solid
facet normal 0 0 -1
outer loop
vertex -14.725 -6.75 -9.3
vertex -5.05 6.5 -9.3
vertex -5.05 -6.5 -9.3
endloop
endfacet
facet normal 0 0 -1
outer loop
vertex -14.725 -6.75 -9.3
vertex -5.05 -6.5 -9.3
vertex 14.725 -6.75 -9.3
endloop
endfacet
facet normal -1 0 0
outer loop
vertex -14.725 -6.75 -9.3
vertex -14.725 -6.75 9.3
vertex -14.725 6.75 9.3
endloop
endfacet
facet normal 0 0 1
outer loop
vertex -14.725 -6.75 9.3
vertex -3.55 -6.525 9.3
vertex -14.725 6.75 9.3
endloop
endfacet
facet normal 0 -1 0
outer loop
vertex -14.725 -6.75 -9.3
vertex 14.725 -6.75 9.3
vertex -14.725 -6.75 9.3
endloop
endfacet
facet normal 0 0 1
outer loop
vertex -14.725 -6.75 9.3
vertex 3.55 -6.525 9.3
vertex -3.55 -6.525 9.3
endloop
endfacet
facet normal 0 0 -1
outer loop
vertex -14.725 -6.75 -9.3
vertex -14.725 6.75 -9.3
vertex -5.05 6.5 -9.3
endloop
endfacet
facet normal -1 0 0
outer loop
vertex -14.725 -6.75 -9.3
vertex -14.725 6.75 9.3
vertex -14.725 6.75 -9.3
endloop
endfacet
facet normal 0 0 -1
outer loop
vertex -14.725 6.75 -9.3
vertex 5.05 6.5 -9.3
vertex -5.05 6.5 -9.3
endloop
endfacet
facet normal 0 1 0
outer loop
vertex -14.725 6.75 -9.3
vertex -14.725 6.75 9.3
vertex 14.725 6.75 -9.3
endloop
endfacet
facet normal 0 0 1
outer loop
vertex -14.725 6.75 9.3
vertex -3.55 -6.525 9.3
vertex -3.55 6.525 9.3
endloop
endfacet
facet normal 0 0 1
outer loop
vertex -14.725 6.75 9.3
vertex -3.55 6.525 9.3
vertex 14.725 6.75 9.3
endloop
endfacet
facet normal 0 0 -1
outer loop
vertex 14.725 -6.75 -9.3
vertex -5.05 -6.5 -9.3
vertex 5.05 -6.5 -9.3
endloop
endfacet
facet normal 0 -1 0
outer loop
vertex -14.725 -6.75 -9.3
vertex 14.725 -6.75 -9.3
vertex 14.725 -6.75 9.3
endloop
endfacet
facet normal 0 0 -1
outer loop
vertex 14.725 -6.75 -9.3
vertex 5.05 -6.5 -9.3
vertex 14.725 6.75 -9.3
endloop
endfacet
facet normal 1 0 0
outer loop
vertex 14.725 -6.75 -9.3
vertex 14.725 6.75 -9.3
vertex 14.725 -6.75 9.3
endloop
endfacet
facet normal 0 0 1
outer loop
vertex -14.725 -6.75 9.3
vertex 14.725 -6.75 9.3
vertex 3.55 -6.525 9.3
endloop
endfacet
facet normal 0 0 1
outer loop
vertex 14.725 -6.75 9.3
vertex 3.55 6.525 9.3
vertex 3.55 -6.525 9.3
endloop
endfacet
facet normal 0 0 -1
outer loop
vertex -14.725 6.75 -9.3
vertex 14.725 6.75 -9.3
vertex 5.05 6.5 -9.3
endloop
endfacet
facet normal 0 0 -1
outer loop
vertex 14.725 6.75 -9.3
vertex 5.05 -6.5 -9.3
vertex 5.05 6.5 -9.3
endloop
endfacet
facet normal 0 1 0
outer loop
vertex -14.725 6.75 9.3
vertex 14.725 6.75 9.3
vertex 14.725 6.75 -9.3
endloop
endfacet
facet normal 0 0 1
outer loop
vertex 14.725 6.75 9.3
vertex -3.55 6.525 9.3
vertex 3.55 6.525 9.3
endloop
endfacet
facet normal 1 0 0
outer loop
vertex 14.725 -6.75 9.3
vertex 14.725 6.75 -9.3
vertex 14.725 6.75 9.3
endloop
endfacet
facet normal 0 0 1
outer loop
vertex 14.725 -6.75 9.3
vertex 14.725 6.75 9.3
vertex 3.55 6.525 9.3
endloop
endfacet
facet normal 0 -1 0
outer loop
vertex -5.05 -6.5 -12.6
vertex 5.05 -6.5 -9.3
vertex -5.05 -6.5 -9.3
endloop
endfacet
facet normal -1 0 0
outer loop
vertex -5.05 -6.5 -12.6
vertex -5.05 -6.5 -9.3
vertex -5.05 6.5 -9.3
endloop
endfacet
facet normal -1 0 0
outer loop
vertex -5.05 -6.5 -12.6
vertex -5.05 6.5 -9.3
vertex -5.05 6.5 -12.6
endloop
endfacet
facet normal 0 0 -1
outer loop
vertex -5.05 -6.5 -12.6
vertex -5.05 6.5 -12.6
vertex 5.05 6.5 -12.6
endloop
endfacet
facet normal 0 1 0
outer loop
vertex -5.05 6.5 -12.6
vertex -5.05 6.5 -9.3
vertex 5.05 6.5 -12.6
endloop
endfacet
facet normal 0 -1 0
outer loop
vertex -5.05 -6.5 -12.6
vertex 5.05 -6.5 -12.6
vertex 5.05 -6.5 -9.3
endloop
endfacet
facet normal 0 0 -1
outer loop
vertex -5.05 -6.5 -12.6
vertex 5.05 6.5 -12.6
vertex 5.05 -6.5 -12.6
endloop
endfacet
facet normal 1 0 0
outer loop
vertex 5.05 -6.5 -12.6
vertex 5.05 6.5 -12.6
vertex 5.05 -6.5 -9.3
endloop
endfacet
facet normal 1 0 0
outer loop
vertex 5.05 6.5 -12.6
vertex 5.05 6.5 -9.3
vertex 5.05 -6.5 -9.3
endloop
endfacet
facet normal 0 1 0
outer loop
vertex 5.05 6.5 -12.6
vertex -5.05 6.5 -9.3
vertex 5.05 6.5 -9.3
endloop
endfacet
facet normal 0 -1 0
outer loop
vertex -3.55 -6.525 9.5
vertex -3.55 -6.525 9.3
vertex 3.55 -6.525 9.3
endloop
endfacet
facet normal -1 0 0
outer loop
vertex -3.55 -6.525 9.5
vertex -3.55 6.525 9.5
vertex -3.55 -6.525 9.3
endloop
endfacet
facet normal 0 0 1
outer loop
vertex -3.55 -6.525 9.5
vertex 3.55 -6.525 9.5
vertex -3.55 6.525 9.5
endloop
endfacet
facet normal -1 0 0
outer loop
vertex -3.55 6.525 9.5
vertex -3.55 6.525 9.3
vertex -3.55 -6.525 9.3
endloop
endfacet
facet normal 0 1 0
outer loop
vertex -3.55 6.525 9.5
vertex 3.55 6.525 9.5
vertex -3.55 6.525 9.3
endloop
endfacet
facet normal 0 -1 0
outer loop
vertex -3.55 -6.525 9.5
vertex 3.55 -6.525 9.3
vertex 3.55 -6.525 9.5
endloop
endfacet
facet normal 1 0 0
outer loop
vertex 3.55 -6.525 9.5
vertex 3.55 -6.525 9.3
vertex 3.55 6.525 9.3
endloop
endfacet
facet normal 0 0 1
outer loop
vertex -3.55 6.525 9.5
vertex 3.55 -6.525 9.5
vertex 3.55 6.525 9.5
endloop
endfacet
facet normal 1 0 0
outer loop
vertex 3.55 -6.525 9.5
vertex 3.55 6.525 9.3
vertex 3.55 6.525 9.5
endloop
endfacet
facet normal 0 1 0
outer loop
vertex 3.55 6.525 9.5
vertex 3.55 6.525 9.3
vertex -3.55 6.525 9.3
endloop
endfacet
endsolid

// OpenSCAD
// Sharp GP2Y0D413K0F Distance Sensor
// Model based on the provided datasheet.
// Units: mm
// Coordinate System:
// - Origin (0,0,0) is at the center of the body.
// - Mounting surface (PWB side) faces the -Z direction.

$fn = 50;

// --- Parameters ---
// Body dimensions
body_w = 29.45;
body_h = 13.5;
body_d = 18.6;

// Connector / PWB dimensions
pwb_w = 10.1;
connector_d = 3.3;
connector_h = 13.0; // Slightly shorter than the body height

// Lens Case front face
lens_w = 7.1;
lens_h = 13.05;

// --- Modules ---

module body() {
    // Main body block
    // The depth is 18.6. Since origin is center, Z goes from -9.3 to 9.3.
    cube([body_w, body_h, body_d], center = true);
}

module connector() {
    // The connector is on the PWB side (-Z direction).
    // PWB face is at Z = -9.3.
    // Connector extends further in -Z by 3.3mm.
    // Center of connector is at Z = -9.3 - (3.3 / 2) = -10.95.
    translate([0, 0, -9.3 - (connector_d / 2)])
        cube([pwb_w, connector_h, connector_d], center = true);
}

module lens_case_detail() {
    // The front face of the "Lens case" is narrower (7.1mm).
    // It occupies the front-most part of the body.
    // We model this as a slight step/profile on the front.
    // This is a simplified representation of the lens housing.
    translate([0, 0, 8.5]) // Positioned at the front
        difference() {
            // Main front area
            cube([lens_w, lens_h, 2], center = true);
            // Keep it slightly recessed or flat to match the drawing
        }
}

// --- Assembly ---

union() {
    body();
    connector();
    lens_case_detail();
}

// Note: 
// The -Z direction is the mounting face. 
// The body sits in the +Z region (mostly), 
// while the connector sticks out in the -Z region.
